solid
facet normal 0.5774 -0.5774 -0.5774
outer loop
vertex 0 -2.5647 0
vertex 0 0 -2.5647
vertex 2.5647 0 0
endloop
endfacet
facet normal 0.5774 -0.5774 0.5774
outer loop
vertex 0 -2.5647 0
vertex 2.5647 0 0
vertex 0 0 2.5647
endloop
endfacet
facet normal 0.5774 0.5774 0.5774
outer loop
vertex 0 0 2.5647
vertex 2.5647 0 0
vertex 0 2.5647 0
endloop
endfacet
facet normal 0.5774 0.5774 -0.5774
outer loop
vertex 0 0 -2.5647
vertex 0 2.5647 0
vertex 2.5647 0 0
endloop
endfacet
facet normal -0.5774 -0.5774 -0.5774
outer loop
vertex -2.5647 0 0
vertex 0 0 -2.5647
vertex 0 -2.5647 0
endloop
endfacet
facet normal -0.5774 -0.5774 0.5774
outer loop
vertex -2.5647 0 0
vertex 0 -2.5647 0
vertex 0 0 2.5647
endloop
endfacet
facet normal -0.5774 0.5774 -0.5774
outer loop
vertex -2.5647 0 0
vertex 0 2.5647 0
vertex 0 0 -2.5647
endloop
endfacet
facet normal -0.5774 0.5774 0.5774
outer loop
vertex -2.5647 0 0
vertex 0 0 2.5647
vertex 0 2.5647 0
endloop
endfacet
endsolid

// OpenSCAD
// file: ../maths_geodesic.scad
/*
	License: This code is placed in the public Domain
	Contributed By: Willliam A Adams
	August 2011
*/

// A couple of useful constants
Cpi = 3.14159;
Cphi = 1.61803399;
Cepsilon = 0.00000001;

 
// Function: clean
//
// Parameters:
//	n - A number that might be very close to zero
// Description:  
//	There are times when you want a very small number to 
// 	just be zero, instead of being that very small number.
//	This function will compare the number to an arbitrarily small 
//	number.  If it is smaller than the 'epsilon', then zero will be 
// 	returned.  Otherwise, the original number will be returned.
//

function clean(n) = (n < 0) ? ((n < -Cepsilon) ? n : 0) : 
	(n < Cepsilon) ? 0 : n; 

// Function: safediv
//
// Parameters
//	n - The numerator
//	d - The denominator
//
// Description:
//	Since division by zero is generally not a desirable thing, safediv
//	will return '0' whenever there is a division by zero.  Although this will
//	mask some erroneous division by zero errors, it is often the case
//	that you actually want this behavior.  So, it makes it convenient.
function safediv(n,d) = (d==0) ? 0 : n/d;


//==================================
// Degrees
//==================================

function DEGREES(radians) = (180/Cpi) * radians;

function RADIANS(degrees) = Cpi/180 * degrees;

function deg(deg, min=0, sec=0) = [deg, min, sec];

function deg_to_dec(d) = d[0] + d[1]/60 + d[2]/60/60;


//==================================
//  Spherical coordinates
//==================================

// create an instance of a spherical coordinate
// long - rotation around z -axis
// lat - latitude, starting at 0 == 'north pole'
// rad - distance from center
function sph(long, lat, rad=1) = [long, lat, rad];

// Convert spherical to cartesian
function sph_to_cart(s) = [
	clean(s[2]*sin(s[1])*cos(s[0])),  
	clean(s[2]*sin(s[1])*sin(s[0])),
	clean(s[2]*cos(s[1]))
	];

// Convert from cartesian to spherical
function sph_from_cart(c) = sph(
	atan2(c[1],c[0]), 
	atan2(sqrt(c[0]*c[0]+c[1]*c[1]), c[2]), 
	sqrt(c[0]*c[0]+c[1]*c[1]+c[2]*c[2])
	);

function sphu_from_cart(c, rad=1) = sph(
	atan2(c[1],c[0]), 
	atan2(sqrt(c[0]*c[0]+c[1]*c[1]), c[2]), 
	rad
	);

// compute the chord distance between two points on a sphere
function sph_dist(c1, c2) = sqrt(
	c1[2]*c1[2] + c2[2]*c2[2] - 
	2*c1[2]*c2[2]*
	((cos(c1[1])*cos(c2[1])) + cos(c1[0]-c2[0])*sin(c1[1])*sin(c2[1]))   
	);


//==========================================
//	Geodesic calculations
// 
//  Reference: Geodesic Math and How to Use It
//  By: Hugh Kenner
//  Second Paperback Edition (2003), p.74-75
//  http://www.amazon.com/Geodesic-Math-How-Hugh-Kenner/dp/0520239318
//
//  The book was used for reference, so if you want to check the math, 
//  you can plug in various numbers to various routines and see if you get
//  the same numbers in the book.
//
//  In general, there are enough routines here to implement the various
//  pieces necessary to make geodesic objects.
//==========================================

function poly_sum_interior_angles(sides) = (sides-2)*180;
function poly_single_interior_angle(pq) = poly_sum_interior_angles(pq[0])/pq[0];



// Given a set of coordinates, return the frequency
// Simply calculated by adding up the values of the coordinates
function geo_freq(xyz) = xyz[0]+xyz[1]+xyz[2];

// Convert between the 2D coordinates of vertices on the face triangle
// to the 3D vertices needed to calculate spherical coordinates
function geo_tri2_tri3(xyf) = [xyf[1], xyf[0]-xyf[1], xyf[2]-xyf[0]];

// Given coordinates for a vertex on the octahedron face
// return the spherical coordinates for the vertex
// class 1, method 1
function octa_class1(c) = sph(
	atan(safediv(c[0], c[1])),
	atan(sqrt(c[0]*c[0]+c[1]*c[1])/c[2]),
	1 
	);

function octa_class2(c) = sph(
	atan(c[0]/c[1]),
	atan( sqrt( 2*(c[0]*c[0]+c[1]*c[1])) /c[2]),
	1 
	);

function icosa_class1(c) = octa_class1(
	[
		c[0]*sin(72),  
		c[1]+c[0]*cos(72),  
		geo_freq(c)/2+c[2]/Cphi
	]);

function icosa_class2(c) = sph(
	atan([c0]/c[1]), 
	atan(sqrt(c[0]*c[0]+c[1]*c[1]))/cos(36)*c[2],
	1
	);
 
function tetra_class1(c) = octa_class1(
	[
		sqrt(3*c[0]),  
		2*c[1]-c[0],  
		(3*c[2]-c[0]-c[1])/sqrt(2)
	]);

function class1_icosa_chord_factor(v1, v2, freq) = sph_dist( 
		icosa_class1(geo_tri2_tri3( [v1[0], v1[1], freq])),
		icosa_class1(geo_tri2_tri3( [v2[0], v2[1], freq]))
	);
// main file
// file autogenerated by create_poly_array.py
// author: thanasi athanassiadis (thanasi@uchicago.edu)
// august 25, 2012

include <../platonic.scad>

// units are mm

rad = 2.564680;

poly = octahedron(rad);

for(i = [ [0.000000,0.000000,0.000000] ])
{
    translate(i)
    display_polyhedron(poly);
}

module display_polyhedron(poly) 
{
polyhedron(points = poly[0], triangles = poly[1]);
}
